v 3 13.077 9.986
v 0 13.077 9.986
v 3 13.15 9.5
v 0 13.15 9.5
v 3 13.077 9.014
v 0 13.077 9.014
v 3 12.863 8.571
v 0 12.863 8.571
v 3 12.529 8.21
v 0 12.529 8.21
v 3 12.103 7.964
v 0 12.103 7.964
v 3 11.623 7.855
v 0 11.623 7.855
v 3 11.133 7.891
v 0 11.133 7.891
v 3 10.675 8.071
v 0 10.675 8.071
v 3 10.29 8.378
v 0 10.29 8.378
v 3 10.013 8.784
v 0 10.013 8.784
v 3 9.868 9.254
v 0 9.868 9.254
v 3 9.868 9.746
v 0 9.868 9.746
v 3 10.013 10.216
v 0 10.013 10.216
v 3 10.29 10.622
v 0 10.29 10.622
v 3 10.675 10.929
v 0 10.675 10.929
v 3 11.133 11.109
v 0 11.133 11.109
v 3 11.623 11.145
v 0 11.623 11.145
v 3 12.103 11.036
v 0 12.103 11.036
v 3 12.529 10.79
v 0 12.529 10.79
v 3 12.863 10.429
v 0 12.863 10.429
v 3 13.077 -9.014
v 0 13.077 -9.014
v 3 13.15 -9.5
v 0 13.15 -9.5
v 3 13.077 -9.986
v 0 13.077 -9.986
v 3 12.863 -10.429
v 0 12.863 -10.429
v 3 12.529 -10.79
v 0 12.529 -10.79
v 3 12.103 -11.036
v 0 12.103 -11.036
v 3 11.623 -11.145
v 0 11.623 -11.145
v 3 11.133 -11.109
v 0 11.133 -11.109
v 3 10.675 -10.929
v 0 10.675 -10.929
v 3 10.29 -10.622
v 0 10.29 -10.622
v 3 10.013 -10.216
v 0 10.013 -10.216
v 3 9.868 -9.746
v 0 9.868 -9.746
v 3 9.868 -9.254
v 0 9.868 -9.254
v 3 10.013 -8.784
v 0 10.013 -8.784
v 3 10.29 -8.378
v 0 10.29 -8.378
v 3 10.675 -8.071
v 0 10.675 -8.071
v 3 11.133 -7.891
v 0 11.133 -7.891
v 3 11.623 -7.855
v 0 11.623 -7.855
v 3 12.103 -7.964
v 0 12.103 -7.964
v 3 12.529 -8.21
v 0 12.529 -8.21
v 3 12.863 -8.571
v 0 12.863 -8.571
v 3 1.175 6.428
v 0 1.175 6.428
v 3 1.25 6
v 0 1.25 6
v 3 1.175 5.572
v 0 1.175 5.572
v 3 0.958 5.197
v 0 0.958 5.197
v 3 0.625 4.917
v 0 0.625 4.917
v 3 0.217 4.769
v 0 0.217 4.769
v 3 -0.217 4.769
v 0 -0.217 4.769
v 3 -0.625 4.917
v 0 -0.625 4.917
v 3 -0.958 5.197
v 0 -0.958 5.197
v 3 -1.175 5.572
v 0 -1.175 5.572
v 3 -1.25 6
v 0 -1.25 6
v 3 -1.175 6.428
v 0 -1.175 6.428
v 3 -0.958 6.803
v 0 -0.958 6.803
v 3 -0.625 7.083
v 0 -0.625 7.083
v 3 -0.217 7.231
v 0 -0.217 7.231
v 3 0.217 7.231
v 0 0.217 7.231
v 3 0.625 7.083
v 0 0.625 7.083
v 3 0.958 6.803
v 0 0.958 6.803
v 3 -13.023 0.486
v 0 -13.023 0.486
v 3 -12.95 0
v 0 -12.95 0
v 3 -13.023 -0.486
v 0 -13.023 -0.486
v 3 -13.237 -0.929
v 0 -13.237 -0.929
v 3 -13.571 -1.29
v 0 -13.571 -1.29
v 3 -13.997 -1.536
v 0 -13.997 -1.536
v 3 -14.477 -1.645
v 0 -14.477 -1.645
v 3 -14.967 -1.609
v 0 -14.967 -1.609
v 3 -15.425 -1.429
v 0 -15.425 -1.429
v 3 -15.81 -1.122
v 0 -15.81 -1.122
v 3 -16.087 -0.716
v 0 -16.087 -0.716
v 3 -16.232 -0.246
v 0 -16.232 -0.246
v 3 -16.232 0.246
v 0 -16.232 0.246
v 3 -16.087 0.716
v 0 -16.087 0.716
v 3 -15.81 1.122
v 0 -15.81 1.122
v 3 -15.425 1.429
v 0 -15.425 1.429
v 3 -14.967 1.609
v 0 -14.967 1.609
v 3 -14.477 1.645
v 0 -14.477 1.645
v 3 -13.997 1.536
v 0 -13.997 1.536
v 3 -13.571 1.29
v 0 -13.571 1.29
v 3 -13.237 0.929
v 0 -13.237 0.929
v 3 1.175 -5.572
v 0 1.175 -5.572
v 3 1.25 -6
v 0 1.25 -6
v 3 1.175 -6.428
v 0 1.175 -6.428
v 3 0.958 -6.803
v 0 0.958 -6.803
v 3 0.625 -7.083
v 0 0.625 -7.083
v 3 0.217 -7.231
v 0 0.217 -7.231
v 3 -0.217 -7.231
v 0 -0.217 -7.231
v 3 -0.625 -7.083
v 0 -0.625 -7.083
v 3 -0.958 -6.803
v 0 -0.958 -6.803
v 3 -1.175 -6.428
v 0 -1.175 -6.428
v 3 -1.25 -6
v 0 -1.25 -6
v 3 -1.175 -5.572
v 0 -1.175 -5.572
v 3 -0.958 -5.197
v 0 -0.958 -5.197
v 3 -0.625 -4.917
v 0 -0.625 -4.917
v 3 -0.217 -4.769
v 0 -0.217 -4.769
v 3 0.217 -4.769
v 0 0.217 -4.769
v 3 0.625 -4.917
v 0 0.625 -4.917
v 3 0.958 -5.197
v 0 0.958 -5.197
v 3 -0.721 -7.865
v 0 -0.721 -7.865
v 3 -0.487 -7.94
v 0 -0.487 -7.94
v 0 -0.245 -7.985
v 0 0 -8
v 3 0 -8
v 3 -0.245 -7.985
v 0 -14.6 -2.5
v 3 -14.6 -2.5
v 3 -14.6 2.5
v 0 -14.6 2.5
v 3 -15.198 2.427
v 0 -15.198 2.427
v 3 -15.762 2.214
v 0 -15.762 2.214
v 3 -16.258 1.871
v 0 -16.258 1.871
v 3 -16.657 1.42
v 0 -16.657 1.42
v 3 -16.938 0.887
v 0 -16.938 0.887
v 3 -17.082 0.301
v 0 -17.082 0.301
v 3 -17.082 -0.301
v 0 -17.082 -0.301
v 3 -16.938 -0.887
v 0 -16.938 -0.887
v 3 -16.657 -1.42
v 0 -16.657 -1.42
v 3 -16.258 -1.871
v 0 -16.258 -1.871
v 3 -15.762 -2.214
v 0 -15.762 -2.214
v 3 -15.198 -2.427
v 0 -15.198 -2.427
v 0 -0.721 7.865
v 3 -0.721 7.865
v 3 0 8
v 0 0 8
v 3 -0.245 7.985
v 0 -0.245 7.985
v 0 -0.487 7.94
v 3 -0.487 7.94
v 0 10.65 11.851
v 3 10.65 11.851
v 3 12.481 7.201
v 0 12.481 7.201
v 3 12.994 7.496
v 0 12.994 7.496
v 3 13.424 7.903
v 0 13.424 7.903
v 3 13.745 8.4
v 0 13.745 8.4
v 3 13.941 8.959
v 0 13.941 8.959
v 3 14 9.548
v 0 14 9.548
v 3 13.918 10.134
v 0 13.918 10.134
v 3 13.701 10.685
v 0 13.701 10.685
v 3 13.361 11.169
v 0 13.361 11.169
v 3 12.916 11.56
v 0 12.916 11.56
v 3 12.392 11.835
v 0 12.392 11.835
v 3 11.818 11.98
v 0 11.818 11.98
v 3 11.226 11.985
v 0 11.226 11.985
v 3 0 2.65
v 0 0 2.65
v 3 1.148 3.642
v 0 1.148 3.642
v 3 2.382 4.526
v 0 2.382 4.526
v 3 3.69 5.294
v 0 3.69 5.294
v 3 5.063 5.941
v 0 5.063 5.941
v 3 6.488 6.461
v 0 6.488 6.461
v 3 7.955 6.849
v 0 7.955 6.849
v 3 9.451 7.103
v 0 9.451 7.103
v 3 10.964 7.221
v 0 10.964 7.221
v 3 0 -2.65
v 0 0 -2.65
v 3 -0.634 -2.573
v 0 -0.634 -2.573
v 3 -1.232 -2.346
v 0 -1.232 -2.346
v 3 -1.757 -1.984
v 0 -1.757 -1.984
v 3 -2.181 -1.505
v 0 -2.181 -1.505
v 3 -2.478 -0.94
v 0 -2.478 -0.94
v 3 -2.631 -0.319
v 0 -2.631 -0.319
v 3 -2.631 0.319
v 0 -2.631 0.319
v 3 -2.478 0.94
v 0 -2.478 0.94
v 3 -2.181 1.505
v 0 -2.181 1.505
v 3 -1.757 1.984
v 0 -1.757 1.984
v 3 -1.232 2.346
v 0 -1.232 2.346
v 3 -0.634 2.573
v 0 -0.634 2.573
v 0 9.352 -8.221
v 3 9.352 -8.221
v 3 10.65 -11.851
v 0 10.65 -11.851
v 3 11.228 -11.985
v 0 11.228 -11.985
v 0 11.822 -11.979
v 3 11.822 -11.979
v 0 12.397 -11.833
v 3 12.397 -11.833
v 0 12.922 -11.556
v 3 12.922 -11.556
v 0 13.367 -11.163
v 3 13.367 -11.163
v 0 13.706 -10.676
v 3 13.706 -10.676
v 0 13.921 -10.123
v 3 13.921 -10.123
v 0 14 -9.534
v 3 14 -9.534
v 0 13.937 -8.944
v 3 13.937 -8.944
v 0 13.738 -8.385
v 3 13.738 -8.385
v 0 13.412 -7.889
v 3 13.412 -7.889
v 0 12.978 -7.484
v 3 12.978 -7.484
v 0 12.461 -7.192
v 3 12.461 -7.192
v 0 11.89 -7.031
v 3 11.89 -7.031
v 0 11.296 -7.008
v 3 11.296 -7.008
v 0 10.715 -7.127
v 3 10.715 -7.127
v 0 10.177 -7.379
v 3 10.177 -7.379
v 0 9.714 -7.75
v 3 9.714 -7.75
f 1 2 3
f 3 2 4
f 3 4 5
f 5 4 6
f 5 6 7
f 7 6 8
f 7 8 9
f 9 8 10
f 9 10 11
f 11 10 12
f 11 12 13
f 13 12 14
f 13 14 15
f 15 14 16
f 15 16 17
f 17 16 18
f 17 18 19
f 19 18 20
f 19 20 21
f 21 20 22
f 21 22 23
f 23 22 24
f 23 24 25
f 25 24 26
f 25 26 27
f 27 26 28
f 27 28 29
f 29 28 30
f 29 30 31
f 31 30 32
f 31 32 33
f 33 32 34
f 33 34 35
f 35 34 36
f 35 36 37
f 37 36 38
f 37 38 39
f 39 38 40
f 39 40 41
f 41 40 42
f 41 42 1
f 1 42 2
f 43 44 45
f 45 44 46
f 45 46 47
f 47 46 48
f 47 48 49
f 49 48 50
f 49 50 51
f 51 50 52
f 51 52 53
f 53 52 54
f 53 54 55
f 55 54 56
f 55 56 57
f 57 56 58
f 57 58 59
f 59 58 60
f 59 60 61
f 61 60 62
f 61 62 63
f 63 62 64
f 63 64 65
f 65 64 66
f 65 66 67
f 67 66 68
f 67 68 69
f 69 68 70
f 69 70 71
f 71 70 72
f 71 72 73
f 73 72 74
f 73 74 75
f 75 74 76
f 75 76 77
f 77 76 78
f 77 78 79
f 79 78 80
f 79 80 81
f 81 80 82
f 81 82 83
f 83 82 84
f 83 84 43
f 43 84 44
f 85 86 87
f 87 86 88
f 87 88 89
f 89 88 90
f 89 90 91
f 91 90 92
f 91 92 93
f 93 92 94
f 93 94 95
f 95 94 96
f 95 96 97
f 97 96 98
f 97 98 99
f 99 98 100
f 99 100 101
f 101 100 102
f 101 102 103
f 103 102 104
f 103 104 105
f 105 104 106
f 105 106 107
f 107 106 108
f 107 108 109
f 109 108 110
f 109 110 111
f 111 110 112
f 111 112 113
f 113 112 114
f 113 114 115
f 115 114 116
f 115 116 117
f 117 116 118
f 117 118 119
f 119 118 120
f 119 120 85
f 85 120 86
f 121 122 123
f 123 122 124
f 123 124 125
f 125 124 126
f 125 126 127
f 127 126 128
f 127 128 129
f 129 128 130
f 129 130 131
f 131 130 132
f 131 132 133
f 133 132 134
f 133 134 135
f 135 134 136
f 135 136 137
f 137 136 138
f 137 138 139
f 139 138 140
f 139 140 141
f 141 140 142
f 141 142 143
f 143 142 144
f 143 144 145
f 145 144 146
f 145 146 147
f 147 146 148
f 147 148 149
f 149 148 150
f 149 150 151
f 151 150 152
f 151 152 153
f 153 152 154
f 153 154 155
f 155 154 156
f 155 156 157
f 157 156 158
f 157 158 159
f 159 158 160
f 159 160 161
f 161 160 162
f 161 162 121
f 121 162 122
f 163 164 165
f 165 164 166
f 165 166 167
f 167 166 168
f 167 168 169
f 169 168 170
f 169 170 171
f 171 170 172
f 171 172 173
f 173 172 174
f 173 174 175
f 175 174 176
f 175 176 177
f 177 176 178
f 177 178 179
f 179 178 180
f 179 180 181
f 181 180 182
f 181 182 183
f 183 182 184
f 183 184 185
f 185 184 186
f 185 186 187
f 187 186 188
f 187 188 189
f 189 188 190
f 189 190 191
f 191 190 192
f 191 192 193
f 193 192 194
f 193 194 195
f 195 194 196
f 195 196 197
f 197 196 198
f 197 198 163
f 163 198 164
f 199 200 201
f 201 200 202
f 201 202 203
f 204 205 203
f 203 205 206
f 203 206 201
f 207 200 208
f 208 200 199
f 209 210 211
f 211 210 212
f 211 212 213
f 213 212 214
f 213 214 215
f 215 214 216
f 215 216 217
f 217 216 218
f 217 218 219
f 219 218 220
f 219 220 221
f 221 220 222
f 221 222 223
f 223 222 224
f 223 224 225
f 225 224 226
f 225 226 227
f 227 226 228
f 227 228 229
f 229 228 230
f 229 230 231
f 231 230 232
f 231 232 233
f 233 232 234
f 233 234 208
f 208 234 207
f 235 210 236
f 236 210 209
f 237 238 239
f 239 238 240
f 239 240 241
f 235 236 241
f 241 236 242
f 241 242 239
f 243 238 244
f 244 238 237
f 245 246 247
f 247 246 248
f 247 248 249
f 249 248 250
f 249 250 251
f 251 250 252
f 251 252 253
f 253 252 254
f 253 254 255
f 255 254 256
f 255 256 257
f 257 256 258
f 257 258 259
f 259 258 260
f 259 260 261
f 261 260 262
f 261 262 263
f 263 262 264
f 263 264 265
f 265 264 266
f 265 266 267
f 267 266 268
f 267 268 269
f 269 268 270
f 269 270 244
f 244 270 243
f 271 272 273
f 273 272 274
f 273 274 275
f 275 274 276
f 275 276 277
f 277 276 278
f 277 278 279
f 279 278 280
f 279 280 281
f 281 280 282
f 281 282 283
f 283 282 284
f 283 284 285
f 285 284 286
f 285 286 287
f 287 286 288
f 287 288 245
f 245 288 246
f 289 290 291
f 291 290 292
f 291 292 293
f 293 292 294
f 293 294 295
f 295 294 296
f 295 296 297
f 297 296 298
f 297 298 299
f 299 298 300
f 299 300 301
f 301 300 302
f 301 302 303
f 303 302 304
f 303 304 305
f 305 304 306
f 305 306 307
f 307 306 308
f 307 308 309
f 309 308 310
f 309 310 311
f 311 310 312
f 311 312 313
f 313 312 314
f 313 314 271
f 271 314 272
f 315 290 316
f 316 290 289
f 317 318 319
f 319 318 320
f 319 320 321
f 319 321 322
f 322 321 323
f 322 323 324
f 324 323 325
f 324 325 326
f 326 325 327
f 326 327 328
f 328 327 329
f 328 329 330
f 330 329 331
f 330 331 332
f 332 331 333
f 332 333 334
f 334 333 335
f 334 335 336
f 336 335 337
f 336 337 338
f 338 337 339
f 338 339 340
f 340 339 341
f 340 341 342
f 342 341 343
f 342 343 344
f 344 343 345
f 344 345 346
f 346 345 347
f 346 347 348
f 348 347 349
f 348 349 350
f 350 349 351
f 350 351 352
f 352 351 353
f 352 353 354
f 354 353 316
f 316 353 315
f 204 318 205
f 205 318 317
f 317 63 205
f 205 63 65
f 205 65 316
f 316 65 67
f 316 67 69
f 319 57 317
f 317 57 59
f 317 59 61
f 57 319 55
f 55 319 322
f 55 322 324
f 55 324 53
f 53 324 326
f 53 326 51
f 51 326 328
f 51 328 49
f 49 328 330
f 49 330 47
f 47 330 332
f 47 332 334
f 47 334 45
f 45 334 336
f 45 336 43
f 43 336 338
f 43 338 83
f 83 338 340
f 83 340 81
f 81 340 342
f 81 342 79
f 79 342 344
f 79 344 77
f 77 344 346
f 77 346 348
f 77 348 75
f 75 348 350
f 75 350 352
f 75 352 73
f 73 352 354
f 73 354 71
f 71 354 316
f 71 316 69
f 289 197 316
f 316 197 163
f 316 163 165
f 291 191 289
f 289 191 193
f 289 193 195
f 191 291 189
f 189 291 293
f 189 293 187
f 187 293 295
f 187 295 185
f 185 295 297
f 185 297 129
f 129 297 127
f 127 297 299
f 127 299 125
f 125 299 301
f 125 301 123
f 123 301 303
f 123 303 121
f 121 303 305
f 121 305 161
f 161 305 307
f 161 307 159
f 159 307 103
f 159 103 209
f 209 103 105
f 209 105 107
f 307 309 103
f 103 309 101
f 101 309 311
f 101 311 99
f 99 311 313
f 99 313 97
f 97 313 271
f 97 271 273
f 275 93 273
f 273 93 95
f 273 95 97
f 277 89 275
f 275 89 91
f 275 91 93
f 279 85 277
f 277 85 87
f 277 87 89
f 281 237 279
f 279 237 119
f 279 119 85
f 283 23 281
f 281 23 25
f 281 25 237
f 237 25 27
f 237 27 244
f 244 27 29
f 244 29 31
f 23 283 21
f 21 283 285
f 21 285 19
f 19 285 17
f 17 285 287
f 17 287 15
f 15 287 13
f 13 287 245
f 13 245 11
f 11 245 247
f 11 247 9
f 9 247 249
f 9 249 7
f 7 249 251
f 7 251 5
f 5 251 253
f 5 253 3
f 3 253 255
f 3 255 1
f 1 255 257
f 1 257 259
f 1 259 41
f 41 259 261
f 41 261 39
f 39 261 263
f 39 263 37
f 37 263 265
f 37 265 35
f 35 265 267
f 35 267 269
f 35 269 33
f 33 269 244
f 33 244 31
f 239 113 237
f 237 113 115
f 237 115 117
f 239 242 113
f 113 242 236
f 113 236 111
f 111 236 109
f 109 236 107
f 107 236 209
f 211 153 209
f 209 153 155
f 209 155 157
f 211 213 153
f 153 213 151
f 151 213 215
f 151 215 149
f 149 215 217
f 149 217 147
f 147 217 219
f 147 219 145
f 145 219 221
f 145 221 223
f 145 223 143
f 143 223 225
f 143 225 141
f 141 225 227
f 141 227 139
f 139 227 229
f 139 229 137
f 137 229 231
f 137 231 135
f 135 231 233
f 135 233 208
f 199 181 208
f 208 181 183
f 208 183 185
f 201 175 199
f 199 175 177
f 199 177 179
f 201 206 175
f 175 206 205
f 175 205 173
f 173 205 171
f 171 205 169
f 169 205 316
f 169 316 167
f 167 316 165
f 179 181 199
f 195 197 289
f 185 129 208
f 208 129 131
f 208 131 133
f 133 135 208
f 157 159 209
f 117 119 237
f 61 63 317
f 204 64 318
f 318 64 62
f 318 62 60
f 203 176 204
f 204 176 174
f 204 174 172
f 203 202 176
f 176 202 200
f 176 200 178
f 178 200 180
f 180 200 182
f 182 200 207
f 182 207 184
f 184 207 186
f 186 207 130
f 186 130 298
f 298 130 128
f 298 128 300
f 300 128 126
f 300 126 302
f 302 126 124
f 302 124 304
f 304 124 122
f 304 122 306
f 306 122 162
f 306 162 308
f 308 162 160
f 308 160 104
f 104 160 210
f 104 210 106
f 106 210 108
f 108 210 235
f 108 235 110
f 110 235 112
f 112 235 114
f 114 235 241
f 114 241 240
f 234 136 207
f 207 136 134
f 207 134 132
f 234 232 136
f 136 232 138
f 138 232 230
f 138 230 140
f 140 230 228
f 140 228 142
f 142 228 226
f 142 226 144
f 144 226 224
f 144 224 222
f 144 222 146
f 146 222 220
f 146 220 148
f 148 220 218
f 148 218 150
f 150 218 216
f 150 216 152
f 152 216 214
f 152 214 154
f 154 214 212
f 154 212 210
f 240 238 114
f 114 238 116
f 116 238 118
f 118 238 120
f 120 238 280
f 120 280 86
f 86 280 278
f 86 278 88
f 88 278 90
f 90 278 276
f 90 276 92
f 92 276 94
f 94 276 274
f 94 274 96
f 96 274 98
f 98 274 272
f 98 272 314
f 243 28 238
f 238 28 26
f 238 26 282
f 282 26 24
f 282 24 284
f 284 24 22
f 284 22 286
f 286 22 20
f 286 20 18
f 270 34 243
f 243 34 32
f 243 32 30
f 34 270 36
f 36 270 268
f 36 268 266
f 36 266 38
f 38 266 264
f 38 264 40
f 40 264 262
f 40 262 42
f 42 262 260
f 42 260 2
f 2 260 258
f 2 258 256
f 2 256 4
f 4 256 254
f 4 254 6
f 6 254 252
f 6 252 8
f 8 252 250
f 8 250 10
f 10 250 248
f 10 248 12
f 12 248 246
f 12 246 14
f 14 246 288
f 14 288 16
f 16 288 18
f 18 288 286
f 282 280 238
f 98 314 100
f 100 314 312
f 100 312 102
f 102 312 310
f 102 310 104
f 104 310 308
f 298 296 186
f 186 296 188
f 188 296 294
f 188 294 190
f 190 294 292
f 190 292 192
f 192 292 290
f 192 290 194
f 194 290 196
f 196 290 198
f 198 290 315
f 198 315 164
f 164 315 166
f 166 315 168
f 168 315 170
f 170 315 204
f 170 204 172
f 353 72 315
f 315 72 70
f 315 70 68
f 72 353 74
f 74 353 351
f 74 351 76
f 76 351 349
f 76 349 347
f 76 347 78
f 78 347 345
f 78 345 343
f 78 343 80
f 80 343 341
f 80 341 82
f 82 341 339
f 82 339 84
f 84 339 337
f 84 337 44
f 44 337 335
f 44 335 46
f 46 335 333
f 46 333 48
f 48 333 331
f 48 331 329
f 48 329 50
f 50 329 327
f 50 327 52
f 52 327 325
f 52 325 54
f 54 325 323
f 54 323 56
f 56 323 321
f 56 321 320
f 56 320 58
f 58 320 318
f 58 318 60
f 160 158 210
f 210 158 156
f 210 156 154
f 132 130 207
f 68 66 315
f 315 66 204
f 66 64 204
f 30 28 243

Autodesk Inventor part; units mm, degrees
ref_plane "YZ Plane" through (0, 0, 0) normal (1, 0, 0) x (0, 1, 0)
ref_plane "XZ Plane" through (0, 0, 0) normal (0, 1, 0) x (-1, 0, 0)
ref_plane "XY Plane" through (0, 0, 0) normal (0, 0, 1) x (1, 0, 0)
sketch "スケッチ1" plane through (0, 0, 0) normal (1, 0, 0) x (0, 1, 0)
  line L0 (0, 0) -> (0, 6)
  line L1 (0, 6) -> (0, -6)
  line L2 (0, 0) -> (11.5, 0)
  line L3 (11.5, 0) -> (11.5, 9.5)
  line L4 (11.5, 9.5) -> (11.5, -9.5)
  circle A0 centre (0, 6) radius 1.25
  circle A1 centre (0, -6) radius 1.25
  circle A2 centre (11.5, 9.5) radius 1.65
  circle A3 centre (11.5, -9.5) radius 1.65
  circle A4 centre (11.5, 9.5) radius 2.5
  circle A5 centre (11.5, -9.5) radius 2.5
  circle A6 centre (0, 0) radius 2.65
  line L5 (0, 0) -> (-14.6, 0)
  circle A7 centre (-14.6, 0) radius 1.65
  circle A8 centre (-14.6, 0) radius 2.5
  circle A9 centre (0, 6) radius 2
  circle A10 centre (0, -6) radius 2
  line L6 (0, 8) -> (10.6499, 11.851)
  line L7 (0, -8) -> (10.6499, -11.851)
  line L8 (-14.6, 0) -> (-14.6, -2.5)
  line L9 (-14.6, 0) -> (-12.1, 0) construction
  line L10 (-14.6, -2.5) -> (-14.6, 2.5)
  line L11 (-14.6, -2.5) -> (-0.7212, -7.8655)
  line L12 (-14.6, 2.5) -> (-0.7212, 7.8655)
  circle A11 centre (11.5, -9.5) radius 14.9164
  line L13 (11.5, -9.5) -> (0, 0)
  line L14 (11.5, -9.5) -> (0, -2.65)
  line L15 (14, 9.5) -> (14, 6.6979)
  circle A12 centre (11.5, -9.5) radius 16.7294
  point P0 (9.3522, -8.2206)
  point P1 (0, 2.65)
  point P2 (12.4812, 7.2006)
  dimension "d9" = 5
  dimension "d10" = 5.3
  dimension "d0" = 6
  dimension "d1" = 12
  dimension "d2" = 11.5
  dimension "d3" = 9.5
  dimension "d4" = 19
  dimension "d5" = 2.5
  dimension "d6" = 3.3
  dimension "d7" = 3.3
  dimension "d8" = 5
  dimension "d11" = 14.6
  dimension "d12" = 3.3
  dimension "d13" = 5
  dimension "d14" = 4
  dimension "d15" = 4
  dimension "d16" = 90
extrude "押し出し2" add sketch "スケッチ1" along normal blind 3 contours A6 L5 A8 L12 A9 L0 | L0 A9 L6 A4 A12 | L14 A5 L7 A10 L1 | L1 A10 L11 A11 A6 | A11 L11 A12 A6 | A9 | A6 A12 L11 A8 L5 | A4 A12 | A10 | L14 A3 L4 A5 | A5 L13 A3 L14 | A5 L4 A3 L13 | A8 L8 A7 L5 | L5 A7 L10 A8 | L10 A7 L8 A8
properties part number "ikafly2b"
